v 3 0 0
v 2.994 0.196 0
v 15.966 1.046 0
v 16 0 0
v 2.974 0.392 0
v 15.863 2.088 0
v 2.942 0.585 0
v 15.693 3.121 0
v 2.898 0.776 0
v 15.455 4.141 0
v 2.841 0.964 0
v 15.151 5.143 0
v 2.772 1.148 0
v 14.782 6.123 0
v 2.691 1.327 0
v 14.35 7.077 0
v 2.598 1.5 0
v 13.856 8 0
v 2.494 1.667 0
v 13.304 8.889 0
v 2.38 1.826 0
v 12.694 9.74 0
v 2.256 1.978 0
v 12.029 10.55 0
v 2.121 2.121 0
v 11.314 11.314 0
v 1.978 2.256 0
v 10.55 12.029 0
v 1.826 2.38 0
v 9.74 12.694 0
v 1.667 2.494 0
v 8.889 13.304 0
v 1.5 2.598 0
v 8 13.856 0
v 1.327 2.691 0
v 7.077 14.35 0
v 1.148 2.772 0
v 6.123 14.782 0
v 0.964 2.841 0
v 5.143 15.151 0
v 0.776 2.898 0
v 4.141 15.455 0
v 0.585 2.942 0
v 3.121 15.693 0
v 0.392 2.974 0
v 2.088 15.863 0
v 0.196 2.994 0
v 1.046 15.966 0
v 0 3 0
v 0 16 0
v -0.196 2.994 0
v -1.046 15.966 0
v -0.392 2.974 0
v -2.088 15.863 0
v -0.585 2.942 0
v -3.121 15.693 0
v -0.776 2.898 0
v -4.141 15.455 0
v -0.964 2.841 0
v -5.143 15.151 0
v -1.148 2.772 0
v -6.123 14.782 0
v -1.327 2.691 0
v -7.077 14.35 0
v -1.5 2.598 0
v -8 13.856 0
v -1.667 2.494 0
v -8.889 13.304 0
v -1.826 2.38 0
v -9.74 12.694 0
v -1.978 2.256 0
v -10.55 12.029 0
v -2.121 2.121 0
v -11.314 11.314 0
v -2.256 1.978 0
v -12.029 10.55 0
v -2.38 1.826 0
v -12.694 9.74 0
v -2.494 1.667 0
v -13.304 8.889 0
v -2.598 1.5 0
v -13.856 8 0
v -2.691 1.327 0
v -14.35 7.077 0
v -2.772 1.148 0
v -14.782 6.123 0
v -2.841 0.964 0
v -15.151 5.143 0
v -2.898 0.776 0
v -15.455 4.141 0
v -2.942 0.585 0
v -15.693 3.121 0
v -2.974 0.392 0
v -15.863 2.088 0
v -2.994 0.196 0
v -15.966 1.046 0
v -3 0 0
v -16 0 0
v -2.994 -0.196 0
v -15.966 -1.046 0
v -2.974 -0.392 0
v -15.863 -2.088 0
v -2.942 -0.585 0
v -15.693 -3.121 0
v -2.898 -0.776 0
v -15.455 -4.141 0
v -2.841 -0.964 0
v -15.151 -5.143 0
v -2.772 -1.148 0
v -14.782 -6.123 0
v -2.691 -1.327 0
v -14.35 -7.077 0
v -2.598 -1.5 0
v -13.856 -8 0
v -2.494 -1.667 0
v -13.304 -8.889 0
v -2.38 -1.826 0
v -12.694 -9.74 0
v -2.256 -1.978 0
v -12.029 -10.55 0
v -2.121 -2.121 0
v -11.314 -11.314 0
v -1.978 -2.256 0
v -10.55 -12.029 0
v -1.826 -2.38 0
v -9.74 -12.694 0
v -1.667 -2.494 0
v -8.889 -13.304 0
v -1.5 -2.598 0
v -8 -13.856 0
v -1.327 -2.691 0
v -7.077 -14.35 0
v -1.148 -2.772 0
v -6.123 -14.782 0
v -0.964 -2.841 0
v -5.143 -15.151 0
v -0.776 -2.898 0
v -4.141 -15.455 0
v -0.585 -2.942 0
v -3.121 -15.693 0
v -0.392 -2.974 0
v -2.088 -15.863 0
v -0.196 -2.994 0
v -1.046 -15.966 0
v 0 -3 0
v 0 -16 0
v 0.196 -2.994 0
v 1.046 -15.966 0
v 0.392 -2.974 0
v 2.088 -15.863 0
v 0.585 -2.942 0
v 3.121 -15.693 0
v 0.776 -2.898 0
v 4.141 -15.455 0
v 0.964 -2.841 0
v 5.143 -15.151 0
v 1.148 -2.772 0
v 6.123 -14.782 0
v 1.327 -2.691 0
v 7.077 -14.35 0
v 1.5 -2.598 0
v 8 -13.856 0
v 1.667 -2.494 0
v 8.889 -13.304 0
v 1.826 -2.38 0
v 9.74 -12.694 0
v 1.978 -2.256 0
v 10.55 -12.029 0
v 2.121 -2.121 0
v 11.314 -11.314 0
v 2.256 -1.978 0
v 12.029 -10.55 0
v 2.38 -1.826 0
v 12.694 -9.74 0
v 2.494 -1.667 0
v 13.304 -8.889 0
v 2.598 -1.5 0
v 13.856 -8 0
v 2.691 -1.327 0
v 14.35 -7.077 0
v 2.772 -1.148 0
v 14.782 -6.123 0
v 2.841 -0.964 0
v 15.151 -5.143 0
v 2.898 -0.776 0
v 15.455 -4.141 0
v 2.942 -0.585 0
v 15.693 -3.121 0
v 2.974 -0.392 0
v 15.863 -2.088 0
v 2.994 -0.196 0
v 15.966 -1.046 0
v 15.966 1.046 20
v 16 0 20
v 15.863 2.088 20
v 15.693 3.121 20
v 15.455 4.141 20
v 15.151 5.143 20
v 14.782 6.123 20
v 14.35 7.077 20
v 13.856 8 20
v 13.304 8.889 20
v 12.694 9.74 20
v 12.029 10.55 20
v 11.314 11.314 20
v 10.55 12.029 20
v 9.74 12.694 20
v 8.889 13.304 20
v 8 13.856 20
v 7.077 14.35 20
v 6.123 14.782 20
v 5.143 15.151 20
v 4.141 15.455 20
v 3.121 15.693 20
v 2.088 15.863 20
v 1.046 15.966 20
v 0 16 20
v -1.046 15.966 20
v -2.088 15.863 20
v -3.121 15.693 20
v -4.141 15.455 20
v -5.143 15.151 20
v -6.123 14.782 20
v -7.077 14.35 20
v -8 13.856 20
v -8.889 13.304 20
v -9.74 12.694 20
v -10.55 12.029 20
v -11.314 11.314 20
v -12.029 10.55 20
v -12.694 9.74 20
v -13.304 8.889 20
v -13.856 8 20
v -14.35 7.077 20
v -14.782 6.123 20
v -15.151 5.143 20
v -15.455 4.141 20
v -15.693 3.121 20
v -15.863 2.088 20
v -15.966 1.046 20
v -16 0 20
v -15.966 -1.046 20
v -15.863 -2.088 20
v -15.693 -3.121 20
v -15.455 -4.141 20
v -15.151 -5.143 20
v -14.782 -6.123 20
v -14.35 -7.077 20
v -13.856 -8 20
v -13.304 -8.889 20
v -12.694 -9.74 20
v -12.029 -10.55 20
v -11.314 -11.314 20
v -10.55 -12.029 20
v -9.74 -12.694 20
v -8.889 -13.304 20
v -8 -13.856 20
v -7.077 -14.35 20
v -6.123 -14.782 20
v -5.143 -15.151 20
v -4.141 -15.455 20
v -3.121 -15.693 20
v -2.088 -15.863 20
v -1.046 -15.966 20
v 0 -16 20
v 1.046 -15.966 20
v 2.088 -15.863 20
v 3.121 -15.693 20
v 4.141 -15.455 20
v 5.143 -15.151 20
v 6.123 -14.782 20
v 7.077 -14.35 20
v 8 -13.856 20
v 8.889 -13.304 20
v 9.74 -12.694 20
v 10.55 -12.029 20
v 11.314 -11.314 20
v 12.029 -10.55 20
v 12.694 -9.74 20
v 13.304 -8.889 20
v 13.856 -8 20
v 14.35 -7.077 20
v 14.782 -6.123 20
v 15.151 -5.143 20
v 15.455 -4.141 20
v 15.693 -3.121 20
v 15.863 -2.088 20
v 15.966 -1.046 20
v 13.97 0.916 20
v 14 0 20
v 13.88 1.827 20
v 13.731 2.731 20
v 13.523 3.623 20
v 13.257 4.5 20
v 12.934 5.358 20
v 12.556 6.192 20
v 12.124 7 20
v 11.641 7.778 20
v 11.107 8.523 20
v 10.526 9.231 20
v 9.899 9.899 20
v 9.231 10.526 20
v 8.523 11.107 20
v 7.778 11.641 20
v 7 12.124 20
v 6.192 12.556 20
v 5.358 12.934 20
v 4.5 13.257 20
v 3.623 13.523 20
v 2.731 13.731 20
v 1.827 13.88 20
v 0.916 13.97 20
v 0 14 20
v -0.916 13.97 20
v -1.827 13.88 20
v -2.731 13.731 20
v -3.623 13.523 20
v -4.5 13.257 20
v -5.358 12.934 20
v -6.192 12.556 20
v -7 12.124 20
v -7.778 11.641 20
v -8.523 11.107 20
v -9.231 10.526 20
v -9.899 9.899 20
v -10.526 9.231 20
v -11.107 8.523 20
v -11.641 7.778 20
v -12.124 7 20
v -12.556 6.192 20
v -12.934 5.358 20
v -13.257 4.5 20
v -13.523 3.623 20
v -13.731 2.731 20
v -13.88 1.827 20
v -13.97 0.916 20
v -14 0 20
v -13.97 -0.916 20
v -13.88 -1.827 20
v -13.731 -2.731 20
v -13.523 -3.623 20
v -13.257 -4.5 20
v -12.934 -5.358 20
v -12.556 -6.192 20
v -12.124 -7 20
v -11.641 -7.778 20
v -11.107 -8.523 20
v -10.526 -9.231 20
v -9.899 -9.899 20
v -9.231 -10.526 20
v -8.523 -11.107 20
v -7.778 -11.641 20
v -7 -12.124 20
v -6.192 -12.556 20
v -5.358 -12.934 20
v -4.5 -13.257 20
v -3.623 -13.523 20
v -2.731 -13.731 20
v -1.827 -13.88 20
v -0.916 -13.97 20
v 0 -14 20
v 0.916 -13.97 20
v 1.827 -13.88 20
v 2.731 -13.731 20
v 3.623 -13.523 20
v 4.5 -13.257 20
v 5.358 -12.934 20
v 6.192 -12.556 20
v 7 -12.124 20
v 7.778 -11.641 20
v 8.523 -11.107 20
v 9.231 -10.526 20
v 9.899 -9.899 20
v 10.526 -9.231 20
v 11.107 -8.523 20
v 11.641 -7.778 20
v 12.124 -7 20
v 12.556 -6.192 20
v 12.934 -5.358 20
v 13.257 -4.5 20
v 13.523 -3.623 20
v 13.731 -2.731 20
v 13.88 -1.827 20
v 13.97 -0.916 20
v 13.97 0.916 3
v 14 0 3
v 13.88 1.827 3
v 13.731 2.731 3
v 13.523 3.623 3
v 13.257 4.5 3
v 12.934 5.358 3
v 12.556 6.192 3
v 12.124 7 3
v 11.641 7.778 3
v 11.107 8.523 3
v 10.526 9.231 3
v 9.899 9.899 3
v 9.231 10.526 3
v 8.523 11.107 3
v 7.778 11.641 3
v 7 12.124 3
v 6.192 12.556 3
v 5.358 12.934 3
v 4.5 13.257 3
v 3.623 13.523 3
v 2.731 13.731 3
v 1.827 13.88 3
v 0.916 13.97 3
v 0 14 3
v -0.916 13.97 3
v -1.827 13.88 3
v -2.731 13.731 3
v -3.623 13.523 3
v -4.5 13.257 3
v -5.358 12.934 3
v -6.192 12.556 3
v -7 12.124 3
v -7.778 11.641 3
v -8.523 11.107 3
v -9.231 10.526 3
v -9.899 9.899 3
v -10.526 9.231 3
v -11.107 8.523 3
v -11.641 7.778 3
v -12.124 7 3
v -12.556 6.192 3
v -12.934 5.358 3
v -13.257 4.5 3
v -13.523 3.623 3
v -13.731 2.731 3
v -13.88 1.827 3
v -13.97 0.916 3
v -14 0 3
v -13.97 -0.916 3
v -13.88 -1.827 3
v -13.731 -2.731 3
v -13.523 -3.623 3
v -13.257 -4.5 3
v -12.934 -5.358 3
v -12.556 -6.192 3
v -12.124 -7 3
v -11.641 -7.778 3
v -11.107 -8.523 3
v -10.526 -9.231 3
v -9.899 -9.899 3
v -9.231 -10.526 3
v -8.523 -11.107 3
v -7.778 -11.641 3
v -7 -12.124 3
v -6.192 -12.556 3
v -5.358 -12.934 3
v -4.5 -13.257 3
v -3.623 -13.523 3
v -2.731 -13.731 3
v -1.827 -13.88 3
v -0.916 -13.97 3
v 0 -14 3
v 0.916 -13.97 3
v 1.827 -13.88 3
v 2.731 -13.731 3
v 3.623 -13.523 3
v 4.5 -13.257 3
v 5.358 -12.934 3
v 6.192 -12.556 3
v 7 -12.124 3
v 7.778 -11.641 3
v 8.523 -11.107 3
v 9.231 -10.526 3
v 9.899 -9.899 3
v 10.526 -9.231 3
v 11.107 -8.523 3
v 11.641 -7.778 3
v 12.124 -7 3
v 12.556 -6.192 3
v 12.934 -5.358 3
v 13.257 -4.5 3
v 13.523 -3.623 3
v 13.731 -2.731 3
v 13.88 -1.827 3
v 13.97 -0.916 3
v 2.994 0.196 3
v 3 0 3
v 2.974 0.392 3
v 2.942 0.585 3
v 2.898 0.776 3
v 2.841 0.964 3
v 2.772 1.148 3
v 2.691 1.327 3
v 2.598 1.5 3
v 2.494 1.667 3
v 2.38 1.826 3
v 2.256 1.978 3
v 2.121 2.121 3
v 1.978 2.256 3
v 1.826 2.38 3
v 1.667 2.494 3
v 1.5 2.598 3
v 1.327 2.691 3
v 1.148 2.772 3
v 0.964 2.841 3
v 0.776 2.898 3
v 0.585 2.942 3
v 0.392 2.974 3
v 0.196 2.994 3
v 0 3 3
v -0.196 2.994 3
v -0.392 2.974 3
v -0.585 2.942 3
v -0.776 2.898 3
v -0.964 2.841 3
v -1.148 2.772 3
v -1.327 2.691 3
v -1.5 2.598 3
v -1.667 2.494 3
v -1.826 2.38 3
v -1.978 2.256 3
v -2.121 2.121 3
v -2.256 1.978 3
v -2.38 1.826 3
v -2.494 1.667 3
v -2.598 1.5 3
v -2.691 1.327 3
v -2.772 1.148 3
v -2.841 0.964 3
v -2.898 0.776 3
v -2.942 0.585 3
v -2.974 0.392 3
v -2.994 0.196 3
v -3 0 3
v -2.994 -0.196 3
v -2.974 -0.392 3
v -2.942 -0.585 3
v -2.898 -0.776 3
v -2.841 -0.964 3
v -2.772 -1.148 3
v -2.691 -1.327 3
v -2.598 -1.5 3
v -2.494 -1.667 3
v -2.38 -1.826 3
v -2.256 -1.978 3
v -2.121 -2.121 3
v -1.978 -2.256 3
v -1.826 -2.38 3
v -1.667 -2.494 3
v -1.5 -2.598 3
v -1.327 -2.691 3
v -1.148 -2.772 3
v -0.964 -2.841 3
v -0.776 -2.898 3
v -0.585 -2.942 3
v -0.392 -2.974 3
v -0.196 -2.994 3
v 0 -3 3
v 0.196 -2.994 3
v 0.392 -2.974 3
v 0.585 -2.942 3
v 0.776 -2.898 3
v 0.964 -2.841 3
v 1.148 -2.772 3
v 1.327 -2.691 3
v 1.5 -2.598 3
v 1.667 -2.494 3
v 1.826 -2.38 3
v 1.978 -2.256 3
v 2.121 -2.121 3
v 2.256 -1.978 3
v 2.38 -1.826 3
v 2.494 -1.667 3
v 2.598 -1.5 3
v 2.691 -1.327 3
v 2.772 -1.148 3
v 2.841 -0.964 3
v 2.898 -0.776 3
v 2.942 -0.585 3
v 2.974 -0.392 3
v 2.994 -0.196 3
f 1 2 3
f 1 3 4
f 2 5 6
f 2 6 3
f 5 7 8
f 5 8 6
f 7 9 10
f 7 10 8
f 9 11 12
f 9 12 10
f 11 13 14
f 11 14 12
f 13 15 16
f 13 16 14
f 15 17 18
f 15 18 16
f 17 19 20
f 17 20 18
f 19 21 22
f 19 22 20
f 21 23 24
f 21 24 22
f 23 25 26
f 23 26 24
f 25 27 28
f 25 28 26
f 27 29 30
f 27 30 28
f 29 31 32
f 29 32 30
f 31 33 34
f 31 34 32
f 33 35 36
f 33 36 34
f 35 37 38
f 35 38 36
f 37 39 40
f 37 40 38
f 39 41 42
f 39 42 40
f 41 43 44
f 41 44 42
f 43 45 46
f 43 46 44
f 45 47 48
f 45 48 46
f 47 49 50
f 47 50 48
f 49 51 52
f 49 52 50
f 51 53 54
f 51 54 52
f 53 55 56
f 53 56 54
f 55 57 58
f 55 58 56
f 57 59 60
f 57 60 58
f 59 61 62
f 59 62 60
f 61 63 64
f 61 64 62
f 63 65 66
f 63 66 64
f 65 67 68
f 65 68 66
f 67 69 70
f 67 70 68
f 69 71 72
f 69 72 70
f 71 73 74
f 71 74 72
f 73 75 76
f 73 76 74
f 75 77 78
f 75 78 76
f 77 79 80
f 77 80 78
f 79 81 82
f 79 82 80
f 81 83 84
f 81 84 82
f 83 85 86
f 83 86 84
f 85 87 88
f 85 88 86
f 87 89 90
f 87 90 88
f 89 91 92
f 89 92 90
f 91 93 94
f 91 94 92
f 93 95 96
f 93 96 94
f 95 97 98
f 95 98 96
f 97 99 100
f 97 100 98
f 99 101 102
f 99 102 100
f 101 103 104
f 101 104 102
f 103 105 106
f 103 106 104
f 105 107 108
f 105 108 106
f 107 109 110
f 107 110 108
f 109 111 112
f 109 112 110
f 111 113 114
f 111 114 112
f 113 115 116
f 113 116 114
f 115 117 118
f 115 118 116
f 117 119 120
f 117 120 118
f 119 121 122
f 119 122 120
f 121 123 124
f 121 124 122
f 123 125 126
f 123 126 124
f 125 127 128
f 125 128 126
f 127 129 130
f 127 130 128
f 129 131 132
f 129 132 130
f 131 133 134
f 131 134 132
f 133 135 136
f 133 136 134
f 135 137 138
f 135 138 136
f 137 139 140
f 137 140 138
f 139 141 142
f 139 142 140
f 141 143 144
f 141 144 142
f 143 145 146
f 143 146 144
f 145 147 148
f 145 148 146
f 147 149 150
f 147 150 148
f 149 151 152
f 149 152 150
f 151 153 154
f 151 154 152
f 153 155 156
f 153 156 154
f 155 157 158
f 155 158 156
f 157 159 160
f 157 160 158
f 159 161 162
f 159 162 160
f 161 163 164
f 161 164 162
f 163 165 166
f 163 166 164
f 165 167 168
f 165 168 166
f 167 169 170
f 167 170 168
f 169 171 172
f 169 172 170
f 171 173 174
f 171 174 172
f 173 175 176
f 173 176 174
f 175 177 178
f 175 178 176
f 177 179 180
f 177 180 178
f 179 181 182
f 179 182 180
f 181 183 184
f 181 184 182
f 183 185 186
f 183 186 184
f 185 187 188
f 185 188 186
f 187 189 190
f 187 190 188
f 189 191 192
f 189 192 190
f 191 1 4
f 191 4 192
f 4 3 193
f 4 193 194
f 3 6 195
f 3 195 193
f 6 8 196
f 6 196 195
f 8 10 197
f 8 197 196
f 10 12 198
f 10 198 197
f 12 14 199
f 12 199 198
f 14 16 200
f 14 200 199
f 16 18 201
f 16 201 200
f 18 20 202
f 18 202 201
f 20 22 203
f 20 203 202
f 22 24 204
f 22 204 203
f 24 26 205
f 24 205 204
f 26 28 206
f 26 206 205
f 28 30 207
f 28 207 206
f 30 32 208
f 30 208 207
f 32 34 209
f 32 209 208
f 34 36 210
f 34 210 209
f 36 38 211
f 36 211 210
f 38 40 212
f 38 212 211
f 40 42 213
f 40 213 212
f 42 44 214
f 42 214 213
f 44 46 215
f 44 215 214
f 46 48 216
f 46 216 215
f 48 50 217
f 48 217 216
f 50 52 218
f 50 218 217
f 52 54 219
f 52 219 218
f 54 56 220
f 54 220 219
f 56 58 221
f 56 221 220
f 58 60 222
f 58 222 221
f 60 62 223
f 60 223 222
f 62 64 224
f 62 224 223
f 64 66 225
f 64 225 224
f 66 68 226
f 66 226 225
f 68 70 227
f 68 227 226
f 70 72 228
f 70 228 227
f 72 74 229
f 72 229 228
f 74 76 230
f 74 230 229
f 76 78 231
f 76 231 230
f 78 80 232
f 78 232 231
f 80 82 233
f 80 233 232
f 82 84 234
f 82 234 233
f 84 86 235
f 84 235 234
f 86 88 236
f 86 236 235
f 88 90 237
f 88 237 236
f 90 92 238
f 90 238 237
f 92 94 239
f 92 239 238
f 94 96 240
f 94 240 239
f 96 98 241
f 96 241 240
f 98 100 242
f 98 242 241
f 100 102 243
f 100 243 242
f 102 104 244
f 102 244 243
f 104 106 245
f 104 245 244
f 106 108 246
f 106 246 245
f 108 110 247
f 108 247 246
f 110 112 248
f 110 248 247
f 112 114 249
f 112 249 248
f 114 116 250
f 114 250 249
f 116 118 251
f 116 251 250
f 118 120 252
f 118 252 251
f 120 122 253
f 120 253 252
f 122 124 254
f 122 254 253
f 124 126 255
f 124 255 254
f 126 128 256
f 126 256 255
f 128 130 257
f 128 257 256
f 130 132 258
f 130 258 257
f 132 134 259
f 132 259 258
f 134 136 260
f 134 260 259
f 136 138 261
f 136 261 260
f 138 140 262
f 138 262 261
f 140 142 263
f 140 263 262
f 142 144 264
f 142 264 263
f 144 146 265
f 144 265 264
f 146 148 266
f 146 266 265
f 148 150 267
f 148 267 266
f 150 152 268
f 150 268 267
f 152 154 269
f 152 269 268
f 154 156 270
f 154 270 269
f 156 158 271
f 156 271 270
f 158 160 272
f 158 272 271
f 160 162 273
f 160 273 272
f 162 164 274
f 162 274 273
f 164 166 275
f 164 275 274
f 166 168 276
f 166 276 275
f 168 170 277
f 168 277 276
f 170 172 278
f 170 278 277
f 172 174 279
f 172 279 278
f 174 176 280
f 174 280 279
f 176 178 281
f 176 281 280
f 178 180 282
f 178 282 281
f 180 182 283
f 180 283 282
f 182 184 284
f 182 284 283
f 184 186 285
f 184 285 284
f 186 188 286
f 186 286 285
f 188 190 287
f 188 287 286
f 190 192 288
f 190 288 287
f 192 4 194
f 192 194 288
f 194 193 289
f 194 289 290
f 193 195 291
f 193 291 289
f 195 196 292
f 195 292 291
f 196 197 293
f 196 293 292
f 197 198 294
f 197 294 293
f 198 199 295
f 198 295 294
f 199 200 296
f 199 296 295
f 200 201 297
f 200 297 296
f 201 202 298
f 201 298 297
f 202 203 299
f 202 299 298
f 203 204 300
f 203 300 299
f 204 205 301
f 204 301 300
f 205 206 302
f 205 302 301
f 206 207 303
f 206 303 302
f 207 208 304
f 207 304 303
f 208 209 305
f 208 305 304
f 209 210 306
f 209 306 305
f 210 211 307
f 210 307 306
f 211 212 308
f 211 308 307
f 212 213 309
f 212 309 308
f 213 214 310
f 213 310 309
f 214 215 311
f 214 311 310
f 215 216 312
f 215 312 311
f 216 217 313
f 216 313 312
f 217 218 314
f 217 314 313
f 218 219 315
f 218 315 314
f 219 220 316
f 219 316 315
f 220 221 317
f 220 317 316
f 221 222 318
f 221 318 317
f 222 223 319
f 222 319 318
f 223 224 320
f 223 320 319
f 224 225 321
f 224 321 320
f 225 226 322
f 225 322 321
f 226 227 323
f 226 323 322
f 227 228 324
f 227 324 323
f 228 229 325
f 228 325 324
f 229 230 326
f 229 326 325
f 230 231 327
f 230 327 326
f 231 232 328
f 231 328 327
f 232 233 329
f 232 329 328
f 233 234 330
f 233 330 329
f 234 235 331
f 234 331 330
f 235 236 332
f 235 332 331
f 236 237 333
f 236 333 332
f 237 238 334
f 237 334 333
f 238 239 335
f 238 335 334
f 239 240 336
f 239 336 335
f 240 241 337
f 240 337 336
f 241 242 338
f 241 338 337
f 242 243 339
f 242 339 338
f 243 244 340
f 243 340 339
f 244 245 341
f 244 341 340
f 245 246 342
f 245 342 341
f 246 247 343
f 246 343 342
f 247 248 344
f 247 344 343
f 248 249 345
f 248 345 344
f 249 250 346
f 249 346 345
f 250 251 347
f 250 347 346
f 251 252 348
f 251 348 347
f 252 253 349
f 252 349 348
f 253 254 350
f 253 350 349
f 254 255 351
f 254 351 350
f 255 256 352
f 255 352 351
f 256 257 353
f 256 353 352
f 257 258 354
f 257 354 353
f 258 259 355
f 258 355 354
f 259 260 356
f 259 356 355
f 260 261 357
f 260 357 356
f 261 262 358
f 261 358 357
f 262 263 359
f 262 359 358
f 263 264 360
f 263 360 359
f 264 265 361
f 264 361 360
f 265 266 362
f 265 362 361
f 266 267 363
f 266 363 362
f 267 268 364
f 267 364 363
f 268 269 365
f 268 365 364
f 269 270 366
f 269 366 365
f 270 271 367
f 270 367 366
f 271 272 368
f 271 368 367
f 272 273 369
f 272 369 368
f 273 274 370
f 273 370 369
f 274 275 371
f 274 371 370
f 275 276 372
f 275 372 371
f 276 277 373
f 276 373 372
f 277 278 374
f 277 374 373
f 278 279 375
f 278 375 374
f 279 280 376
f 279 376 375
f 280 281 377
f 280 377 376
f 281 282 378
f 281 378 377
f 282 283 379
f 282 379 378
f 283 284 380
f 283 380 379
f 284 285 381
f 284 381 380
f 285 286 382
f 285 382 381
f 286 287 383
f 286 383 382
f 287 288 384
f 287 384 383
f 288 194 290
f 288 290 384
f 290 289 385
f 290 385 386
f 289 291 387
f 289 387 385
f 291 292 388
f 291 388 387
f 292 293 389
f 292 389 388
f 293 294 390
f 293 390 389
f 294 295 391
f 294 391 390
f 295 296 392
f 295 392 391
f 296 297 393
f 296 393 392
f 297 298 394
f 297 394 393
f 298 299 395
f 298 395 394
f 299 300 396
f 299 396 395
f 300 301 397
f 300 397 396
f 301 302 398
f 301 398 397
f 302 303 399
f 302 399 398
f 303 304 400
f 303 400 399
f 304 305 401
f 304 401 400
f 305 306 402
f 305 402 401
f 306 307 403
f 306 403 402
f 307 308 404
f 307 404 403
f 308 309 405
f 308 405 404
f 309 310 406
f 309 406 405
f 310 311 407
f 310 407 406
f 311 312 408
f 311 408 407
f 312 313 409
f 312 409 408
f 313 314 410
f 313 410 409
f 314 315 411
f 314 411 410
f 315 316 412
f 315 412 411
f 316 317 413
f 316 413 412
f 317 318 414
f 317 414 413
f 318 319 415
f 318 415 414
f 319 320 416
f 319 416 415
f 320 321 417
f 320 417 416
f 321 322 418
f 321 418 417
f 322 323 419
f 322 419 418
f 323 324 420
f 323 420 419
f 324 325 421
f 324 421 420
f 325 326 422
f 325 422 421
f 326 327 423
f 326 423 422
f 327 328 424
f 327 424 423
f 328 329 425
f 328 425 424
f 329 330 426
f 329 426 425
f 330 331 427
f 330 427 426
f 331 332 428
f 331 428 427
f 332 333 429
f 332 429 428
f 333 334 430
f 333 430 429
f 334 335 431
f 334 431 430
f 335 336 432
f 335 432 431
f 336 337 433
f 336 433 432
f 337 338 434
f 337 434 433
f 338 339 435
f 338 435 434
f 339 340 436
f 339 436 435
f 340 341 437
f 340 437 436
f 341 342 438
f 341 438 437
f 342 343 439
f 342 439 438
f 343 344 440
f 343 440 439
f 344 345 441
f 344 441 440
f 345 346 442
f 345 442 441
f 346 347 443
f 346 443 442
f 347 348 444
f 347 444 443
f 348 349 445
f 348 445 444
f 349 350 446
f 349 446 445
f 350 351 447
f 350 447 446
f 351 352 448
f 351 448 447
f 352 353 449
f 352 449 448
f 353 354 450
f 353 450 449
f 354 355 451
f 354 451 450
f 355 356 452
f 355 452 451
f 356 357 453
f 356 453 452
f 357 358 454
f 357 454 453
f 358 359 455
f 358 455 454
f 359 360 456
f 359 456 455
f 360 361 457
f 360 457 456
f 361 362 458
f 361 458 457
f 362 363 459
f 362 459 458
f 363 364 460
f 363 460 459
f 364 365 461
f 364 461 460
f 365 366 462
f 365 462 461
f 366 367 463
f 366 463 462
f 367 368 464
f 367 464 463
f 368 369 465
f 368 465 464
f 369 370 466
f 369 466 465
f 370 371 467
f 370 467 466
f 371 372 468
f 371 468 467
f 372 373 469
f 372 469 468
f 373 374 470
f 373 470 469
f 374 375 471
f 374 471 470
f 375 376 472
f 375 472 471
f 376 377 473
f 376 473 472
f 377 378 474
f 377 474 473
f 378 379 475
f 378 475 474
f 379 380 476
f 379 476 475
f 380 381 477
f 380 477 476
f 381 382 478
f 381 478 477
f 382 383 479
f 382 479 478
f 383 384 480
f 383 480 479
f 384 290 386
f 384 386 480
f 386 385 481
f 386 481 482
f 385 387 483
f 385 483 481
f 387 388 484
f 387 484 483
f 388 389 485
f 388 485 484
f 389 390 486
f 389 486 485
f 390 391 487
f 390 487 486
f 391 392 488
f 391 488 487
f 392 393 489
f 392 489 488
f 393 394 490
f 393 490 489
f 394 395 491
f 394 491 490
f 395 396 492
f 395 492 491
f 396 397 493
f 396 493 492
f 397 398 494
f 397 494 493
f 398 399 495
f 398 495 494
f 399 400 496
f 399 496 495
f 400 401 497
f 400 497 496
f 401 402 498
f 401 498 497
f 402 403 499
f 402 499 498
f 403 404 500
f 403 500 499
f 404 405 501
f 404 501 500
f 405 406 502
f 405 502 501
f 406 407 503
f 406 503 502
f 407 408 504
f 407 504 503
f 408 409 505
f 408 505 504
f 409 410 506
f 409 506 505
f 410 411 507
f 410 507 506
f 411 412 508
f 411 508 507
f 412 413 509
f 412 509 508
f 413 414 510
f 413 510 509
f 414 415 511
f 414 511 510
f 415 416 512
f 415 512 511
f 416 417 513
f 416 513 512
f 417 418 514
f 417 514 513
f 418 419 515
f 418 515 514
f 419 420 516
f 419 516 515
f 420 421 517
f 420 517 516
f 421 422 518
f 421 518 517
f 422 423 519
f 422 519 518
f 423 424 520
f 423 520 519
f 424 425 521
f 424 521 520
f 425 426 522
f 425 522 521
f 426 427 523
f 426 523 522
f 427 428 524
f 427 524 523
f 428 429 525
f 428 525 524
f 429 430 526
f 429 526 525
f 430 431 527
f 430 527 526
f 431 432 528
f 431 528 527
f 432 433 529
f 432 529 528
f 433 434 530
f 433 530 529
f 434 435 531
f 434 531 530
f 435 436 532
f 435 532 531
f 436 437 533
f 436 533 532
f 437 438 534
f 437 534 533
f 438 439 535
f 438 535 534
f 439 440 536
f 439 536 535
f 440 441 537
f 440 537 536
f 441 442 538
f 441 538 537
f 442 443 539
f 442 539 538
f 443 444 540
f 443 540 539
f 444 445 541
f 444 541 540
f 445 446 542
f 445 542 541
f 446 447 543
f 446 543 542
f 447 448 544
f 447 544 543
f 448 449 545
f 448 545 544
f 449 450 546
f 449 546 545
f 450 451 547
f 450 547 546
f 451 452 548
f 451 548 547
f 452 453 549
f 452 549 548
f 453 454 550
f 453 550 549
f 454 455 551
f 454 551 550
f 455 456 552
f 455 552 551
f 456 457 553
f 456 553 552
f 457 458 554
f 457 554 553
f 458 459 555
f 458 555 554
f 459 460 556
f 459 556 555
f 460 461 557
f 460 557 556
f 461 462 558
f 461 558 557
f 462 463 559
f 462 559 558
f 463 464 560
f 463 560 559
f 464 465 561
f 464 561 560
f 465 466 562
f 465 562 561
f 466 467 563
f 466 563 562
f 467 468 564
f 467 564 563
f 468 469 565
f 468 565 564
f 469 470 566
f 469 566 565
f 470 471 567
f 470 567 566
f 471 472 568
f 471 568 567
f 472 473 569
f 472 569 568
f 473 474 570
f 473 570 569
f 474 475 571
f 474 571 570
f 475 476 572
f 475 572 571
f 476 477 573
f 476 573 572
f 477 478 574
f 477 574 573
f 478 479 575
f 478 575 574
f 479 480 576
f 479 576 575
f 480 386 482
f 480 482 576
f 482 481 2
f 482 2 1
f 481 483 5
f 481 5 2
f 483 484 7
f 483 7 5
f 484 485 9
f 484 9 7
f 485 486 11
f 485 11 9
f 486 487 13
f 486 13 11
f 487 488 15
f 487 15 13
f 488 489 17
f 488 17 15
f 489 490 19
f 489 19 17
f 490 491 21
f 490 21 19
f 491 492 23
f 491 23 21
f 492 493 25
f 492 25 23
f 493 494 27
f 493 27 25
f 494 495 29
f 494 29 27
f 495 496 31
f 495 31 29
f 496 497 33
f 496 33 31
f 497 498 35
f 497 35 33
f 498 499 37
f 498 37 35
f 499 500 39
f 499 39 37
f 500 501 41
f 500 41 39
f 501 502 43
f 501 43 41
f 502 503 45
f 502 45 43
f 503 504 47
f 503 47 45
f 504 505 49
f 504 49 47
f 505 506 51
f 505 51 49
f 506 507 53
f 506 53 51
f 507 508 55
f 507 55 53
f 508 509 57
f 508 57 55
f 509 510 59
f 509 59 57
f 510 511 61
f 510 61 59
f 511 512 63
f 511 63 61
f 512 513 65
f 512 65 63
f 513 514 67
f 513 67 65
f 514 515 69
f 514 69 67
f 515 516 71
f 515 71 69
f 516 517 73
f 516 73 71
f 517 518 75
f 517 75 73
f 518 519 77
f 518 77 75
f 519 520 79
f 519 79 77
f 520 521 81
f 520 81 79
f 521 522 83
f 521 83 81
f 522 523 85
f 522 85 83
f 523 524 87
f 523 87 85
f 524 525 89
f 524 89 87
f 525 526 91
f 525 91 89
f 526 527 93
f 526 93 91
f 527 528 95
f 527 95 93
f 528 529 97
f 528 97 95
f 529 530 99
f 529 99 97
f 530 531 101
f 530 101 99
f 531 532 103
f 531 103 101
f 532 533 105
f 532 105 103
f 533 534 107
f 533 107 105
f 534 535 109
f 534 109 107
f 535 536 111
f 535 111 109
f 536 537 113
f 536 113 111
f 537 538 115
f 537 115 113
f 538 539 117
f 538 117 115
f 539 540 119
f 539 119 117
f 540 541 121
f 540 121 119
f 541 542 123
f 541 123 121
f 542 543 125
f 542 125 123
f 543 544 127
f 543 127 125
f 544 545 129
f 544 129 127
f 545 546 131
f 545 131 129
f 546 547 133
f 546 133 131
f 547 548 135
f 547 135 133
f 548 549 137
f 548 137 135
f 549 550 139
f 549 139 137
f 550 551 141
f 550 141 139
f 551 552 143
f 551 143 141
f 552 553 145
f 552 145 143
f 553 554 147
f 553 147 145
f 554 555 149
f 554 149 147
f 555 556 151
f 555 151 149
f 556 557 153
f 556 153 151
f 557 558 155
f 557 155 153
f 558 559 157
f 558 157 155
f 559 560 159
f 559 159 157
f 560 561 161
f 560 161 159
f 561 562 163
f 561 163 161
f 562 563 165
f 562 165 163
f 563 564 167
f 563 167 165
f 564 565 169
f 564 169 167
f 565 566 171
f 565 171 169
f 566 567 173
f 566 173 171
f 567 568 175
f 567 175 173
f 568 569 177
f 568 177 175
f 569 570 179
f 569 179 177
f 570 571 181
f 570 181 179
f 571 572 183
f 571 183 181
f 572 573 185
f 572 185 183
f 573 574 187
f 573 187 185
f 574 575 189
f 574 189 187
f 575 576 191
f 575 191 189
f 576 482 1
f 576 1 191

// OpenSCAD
// Original MechIntel educational model. CC0-1.0. Units: mm.
// Not a standardized or load-rated component.
$fn=96;
// Section points: [radius, height], mm. Edit to change the profile.
section=[[3, 0], [16, 0], [16, 20], [14, 20], [14, 3], [3, 3]];
rotate_extrude($fn=96) polygon(points=section);
